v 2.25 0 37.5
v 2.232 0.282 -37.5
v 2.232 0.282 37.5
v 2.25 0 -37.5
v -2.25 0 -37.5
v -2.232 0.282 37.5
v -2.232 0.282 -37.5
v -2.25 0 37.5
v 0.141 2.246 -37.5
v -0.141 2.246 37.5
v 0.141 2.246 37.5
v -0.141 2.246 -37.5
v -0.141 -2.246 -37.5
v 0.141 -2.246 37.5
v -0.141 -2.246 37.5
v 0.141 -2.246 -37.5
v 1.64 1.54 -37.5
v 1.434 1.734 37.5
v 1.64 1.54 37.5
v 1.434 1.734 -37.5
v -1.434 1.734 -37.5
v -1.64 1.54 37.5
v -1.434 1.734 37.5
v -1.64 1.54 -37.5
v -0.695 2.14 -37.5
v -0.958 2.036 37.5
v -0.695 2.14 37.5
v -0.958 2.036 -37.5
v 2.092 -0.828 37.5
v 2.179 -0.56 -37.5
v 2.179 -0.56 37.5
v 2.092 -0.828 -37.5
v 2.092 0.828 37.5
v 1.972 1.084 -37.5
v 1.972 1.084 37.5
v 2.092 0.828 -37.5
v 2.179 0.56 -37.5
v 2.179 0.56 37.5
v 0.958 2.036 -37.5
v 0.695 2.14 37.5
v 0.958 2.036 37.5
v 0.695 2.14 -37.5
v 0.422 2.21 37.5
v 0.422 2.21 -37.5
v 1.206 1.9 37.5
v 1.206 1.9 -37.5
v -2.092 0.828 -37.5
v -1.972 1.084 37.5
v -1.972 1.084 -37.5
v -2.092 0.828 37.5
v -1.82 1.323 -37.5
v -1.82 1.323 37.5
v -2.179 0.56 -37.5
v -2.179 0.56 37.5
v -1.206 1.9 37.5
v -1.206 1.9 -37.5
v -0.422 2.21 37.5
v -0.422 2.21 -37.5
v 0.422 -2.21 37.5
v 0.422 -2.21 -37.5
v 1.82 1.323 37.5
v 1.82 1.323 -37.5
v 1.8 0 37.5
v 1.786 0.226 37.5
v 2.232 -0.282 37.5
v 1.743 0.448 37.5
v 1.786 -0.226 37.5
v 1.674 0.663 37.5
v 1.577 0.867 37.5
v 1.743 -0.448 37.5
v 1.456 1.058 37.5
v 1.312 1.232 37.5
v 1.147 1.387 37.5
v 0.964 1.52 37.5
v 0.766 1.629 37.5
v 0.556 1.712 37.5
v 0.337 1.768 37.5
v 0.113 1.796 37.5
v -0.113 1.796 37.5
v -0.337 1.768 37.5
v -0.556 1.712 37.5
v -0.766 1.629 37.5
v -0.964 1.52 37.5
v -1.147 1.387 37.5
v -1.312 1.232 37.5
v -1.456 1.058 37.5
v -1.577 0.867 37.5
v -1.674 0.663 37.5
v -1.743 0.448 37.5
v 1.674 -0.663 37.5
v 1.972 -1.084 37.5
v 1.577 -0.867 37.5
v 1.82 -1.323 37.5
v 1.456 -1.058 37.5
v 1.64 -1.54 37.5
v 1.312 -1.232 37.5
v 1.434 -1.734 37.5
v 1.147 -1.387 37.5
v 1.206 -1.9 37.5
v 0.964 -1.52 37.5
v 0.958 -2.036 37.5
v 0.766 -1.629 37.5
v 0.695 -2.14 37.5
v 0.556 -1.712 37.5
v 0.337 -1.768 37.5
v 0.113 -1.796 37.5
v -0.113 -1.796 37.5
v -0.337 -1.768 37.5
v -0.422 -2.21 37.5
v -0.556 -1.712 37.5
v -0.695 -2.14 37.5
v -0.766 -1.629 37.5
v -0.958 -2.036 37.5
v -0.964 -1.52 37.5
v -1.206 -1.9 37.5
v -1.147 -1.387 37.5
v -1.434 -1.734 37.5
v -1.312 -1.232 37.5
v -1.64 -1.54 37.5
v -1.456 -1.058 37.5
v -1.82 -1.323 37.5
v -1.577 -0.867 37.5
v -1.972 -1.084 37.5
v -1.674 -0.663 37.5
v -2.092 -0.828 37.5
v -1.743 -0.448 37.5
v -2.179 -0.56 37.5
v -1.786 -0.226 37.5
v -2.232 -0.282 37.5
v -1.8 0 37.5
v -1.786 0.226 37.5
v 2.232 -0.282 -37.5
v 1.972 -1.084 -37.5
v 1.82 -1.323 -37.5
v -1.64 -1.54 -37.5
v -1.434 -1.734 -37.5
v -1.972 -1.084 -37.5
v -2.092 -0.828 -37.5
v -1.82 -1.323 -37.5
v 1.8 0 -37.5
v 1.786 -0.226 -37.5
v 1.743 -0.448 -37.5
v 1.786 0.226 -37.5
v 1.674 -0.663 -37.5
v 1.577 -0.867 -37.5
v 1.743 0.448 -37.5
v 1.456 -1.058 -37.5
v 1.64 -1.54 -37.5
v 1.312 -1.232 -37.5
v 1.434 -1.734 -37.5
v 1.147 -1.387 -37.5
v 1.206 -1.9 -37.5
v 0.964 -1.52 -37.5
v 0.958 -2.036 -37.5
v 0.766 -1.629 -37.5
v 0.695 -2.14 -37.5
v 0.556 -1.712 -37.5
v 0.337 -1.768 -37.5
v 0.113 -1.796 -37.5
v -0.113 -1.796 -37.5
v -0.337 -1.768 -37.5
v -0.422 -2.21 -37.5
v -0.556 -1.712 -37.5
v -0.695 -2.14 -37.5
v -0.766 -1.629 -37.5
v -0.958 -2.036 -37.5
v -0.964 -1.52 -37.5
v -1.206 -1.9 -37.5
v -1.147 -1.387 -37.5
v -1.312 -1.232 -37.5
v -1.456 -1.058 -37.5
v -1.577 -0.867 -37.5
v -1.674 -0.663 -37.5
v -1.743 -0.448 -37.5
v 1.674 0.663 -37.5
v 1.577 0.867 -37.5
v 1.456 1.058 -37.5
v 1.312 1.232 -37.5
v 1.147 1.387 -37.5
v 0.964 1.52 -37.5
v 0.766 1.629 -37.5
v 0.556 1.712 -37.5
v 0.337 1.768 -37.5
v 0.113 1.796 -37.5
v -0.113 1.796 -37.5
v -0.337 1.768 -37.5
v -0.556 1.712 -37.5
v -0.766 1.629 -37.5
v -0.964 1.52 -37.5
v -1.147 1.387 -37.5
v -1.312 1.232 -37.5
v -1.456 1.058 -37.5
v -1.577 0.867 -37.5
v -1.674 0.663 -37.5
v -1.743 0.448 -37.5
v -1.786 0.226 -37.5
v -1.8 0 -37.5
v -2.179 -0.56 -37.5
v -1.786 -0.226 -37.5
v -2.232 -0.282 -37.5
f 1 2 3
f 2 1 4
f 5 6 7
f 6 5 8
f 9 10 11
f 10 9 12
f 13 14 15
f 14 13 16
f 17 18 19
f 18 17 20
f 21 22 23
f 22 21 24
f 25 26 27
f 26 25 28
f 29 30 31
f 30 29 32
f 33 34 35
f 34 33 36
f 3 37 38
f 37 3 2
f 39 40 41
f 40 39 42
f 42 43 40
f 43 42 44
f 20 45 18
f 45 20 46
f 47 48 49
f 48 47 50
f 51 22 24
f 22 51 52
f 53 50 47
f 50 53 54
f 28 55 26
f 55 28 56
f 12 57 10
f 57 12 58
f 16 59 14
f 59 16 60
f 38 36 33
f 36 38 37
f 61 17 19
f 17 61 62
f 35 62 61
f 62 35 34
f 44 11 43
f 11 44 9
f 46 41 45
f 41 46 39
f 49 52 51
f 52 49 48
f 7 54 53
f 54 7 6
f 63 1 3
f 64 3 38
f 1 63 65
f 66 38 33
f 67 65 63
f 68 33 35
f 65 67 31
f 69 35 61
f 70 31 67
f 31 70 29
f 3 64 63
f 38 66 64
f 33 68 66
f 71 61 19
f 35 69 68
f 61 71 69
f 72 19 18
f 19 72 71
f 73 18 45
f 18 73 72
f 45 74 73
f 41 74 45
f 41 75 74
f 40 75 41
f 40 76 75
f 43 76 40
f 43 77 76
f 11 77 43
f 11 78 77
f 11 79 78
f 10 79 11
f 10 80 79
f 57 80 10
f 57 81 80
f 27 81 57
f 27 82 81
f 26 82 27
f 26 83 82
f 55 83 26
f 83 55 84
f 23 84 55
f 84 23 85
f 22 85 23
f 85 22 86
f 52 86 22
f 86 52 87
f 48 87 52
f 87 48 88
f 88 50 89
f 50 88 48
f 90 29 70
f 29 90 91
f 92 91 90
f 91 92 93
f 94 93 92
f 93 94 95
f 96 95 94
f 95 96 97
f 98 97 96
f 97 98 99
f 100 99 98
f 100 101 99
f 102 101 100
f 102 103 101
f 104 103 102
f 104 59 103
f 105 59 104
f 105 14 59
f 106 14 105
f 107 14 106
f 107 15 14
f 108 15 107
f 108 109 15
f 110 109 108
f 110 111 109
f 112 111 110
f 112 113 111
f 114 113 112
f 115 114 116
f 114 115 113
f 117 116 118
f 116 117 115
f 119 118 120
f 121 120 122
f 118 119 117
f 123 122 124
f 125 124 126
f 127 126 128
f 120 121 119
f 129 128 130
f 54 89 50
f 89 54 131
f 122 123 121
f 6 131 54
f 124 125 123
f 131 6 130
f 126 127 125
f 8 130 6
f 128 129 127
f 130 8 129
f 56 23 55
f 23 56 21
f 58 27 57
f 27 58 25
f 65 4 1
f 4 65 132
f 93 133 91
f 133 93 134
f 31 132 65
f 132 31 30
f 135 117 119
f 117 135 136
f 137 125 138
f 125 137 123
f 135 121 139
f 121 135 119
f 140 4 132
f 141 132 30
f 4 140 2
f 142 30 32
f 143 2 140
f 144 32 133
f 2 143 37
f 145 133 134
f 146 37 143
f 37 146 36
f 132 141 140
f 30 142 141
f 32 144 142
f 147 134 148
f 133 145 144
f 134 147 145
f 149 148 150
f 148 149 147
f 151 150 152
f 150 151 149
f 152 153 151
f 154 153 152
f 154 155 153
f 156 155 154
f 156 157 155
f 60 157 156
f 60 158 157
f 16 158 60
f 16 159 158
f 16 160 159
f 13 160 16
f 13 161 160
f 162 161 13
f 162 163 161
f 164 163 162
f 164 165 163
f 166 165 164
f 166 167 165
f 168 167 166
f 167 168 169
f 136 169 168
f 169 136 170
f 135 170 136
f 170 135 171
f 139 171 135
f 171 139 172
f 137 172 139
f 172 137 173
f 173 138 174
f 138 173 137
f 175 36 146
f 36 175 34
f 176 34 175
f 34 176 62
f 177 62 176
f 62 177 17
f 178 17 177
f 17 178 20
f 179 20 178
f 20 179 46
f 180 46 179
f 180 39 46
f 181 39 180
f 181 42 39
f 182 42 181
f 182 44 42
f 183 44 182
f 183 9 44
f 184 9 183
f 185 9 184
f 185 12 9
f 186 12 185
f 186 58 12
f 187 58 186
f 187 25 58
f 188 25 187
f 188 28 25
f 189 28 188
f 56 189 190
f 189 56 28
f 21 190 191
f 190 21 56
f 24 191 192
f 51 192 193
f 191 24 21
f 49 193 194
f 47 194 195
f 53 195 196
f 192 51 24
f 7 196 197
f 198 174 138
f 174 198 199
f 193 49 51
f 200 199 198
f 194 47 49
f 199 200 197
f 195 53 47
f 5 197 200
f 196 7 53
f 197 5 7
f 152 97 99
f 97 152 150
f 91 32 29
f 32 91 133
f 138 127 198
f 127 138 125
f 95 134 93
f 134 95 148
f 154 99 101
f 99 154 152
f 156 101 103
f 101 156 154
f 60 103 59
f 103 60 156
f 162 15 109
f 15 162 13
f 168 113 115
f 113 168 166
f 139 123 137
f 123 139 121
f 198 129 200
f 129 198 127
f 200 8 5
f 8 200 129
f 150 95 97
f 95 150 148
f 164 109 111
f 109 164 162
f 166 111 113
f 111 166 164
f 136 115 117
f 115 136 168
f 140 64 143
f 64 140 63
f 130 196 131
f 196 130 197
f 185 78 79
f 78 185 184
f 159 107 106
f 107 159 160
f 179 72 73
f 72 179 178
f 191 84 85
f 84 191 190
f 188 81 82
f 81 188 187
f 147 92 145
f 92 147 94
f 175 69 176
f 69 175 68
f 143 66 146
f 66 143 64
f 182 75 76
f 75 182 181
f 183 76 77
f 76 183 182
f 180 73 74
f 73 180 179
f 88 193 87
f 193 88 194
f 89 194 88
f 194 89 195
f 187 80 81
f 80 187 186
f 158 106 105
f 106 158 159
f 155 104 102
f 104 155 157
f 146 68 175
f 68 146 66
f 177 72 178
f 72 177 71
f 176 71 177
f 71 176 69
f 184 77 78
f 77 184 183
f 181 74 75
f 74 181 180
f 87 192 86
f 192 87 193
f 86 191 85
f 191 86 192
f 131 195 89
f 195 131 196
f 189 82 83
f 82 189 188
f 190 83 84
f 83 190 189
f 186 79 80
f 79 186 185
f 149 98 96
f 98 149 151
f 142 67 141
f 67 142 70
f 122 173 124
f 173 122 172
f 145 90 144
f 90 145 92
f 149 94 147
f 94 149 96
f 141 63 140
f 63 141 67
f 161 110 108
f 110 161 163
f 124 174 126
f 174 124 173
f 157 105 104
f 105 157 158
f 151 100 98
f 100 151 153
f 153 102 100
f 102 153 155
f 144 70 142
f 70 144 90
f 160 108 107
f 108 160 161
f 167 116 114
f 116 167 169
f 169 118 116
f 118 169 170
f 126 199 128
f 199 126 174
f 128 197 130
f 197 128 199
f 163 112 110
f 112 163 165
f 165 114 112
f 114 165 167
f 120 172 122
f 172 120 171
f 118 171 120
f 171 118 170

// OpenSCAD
$fn = 50;


difference() {
	union() {
		translate(v = [0, 0, -37.5000000000]) {
			cylinder(h = 75, r = 2.2500000000);
		}
	}
	union() {
		translate(v = [0, 0, -100.0000000000]) {
			cylinder(h = 200, r = 1.8000000000);
		}
	}
}
